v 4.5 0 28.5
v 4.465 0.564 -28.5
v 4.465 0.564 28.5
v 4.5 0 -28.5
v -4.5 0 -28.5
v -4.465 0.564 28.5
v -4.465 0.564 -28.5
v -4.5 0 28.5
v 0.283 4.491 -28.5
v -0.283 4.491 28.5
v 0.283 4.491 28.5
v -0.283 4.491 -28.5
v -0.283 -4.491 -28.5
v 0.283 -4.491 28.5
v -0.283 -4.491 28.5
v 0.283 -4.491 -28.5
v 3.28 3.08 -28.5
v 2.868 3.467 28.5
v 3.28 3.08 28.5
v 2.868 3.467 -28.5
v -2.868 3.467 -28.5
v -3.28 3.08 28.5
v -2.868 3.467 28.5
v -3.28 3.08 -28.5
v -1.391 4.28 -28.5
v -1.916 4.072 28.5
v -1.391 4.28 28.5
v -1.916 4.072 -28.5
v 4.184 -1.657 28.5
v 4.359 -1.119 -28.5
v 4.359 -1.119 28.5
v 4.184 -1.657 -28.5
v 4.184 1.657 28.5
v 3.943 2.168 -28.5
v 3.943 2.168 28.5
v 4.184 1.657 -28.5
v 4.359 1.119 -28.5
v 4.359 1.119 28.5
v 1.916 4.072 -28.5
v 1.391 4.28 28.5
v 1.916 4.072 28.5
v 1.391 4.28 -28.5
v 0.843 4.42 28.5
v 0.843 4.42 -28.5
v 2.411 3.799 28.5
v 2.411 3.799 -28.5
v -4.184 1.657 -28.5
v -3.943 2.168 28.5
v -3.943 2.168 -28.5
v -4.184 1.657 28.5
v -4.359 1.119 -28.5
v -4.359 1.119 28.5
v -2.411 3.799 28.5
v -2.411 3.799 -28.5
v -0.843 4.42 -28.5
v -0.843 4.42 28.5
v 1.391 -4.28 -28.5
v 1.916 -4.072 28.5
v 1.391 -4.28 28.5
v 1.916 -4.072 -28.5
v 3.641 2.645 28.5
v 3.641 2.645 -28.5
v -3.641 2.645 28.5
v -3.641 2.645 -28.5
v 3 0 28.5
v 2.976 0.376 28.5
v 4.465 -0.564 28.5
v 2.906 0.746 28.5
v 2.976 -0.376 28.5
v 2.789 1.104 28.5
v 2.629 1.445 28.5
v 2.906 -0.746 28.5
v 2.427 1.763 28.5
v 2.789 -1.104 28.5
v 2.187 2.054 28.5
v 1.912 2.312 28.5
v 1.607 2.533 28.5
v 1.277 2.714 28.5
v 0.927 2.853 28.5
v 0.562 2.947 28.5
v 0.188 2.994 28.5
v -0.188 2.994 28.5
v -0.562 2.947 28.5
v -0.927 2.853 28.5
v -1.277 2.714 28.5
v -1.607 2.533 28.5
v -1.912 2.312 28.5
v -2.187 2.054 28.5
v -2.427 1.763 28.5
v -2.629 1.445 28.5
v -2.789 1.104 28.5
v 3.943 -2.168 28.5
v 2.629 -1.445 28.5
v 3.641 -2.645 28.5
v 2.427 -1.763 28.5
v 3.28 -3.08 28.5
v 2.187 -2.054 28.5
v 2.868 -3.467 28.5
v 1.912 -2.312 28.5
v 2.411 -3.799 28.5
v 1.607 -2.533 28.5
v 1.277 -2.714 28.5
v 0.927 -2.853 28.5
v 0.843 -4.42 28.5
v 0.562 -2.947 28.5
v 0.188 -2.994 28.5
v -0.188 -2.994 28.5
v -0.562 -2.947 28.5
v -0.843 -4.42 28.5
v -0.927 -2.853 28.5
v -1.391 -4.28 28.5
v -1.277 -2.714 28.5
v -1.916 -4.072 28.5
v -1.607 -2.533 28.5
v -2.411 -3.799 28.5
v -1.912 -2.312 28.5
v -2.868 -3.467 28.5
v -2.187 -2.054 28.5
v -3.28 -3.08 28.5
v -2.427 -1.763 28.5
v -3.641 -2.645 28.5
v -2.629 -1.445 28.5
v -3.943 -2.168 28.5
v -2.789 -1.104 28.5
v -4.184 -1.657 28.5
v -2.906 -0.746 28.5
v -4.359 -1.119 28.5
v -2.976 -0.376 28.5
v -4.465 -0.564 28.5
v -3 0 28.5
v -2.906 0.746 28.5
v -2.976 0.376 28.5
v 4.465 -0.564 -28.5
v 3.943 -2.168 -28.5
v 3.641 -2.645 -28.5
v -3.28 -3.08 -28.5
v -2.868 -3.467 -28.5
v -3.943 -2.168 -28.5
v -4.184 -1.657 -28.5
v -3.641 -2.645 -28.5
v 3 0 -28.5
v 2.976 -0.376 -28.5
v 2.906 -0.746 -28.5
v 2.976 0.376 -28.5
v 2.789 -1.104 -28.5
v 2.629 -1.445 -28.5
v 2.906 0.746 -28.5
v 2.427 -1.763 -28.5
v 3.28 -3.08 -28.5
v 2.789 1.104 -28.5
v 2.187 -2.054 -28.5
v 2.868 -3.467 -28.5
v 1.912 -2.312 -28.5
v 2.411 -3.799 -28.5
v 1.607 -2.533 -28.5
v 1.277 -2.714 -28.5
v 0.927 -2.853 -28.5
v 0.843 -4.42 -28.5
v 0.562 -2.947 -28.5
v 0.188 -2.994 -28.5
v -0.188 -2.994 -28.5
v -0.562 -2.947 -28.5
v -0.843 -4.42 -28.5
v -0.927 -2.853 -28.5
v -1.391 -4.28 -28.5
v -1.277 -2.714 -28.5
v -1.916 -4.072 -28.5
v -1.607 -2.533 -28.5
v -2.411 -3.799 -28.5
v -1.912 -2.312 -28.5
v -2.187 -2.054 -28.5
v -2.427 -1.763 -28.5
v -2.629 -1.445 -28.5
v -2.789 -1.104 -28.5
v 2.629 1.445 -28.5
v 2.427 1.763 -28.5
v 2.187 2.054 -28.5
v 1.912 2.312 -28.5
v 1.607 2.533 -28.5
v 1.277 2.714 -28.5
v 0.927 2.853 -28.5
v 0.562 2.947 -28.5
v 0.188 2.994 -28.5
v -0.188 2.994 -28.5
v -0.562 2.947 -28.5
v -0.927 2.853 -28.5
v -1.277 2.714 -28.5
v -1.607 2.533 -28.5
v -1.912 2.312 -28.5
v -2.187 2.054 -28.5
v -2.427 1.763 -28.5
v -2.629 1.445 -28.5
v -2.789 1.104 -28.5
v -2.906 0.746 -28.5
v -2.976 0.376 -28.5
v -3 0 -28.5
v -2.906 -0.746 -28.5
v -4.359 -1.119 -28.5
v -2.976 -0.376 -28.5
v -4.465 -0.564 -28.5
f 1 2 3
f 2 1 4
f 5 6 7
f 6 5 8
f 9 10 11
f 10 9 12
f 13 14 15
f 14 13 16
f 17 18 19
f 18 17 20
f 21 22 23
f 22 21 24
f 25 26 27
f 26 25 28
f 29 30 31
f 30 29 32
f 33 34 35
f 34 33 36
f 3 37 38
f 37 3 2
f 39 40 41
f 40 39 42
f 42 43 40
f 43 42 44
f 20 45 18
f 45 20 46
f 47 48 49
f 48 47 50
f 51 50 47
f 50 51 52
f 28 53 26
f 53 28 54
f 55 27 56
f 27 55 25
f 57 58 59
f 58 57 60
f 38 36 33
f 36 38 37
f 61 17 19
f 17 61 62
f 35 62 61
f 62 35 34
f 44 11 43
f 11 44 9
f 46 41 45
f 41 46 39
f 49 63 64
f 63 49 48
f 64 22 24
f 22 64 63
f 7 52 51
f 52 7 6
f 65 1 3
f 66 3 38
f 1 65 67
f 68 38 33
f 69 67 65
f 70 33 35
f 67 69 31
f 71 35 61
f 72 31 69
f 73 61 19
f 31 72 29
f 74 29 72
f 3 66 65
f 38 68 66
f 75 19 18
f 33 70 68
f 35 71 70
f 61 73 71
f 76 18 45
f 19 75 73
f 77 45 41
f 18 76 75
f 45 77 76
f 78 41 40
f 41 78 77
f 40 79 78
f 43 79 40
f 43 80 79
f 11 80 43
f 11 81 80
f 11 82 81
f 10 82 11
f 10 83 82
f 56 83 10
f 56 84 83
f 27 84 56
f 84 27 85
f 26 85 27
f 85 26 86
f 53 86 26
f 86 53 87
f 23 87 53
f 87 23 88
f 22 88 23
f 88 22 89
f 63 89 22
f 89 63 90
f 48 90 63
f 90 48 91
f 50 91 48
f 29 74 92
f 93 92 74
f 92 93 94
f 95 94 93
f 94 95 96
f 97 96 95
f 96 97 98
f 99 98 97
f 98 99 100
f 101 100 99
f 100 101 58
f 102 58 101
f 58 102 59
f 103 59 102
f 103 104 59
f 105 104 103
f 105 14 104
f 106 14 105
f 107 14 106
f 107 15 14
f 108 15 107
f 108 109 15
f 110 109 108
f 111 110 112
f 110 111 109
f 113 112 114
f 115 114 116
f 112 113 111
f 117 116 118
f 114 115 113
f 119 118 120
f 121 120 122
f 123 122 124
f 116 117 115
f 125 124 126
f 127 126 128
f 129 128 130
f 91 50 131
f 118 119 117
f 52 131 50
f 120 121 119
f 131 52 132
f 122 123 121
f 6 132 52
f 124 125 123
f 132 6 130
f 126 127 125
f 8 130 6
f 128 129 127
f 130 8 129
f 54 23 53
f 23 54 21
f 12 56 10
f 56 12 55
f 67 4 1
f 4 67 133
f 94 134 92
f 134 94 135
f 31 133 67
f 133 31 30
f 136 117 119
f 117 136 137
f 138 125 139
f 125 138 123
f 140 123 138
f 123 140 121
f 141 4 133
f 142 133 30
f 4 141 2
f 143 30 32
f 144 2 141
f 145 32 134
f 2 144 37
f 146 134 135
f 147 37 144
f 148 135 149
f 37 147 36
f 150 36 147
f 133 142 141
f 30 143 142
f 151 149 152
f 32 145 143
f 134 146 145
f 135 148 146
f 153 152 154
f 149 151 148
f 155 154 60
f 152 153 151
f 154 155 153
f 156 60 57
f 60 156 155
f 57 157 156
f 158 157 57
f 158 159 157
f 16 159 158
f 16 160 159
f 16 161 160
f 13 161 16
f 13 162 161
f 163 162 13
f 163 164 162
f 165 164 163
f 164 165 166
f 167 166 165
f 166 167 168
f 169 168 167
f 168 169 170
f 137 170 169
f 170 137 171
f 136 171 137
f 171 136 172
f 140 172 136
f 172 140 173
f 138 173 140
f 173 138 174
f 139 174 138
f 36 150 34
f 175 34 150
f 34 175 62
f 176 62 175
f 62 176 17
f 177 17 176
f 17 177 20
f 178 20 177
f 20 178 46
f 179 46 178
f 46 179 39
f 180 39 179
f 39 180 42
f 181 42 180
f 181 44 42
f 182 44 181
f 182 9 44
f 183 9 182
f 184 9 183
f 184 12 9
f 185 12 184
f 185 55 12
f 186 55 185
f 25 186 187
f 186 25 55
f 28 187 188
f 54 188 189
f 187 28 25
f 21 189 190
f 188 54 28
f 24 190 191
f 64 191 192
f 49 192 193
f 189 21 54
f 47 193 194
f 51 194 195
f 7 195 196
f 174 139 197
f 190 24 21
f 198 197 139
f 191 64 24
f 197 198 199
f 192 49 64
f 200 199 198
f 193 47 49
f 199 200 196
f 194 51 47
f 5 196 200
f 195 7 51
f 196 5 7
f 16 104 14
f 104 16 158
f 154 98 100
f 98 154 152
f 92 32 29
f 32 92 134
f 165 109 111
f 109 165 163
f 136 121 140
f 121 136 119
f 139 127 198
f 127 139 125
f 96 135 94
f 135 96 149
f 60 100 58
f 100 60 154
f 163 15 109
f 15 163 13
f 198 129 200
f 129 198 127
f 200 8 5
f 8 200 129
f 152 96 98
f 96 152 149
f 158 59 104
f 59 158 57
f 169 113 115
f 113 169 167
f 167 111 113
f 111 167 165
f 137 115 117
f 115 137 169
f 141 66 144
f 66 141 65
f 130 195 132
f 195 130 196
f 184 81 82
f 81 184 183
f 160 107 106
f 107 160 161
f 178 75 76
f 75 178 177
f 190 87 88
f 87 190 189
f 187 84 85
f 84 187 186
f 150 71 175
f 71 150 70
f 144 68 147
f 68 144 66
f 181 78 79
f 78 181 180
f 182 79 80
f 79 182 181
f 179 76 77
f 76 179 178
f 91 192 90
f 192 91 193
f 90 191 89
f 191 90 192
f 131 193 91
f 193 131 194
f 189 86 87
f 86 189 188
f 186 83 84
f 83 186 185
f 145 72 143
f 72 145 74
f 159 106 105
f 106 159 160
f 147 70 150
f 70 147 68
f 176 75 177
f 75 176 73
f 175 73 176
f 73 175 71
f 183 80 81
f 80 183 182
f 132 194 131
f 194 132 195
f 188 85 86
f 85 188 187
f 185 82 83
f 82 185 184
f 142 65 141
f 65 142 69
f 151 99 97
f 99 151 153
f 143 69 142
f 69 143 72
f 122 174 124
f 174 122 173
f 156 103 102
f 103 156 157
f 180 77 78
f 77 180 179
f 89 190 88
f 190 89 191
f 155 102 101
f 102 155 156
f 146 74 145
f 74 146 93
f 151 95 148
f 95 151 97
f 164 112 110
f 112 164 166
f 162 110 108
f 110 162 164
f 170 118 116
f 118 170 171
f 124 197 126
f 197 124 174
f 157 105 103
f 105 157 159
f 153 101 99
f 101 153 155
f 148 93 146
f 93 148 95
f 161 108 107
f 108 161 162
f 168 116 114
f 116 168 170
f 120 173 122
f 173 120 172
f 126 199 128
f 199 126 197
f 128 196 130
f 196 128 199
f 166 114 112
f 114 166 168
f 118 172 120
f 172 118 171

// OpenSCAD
$fn = 50;


difference() {
	union() {
		translate(v = [0, 0, -28.5000000000]) {
			cylinder(h = 57, r = 4.5000000000);
		}
	}
	union() {
		translate(v = [0, 0, -100.0000000000]) {
			cylinder(h = 200, r = 3.0000000000);
		}
	}
}
